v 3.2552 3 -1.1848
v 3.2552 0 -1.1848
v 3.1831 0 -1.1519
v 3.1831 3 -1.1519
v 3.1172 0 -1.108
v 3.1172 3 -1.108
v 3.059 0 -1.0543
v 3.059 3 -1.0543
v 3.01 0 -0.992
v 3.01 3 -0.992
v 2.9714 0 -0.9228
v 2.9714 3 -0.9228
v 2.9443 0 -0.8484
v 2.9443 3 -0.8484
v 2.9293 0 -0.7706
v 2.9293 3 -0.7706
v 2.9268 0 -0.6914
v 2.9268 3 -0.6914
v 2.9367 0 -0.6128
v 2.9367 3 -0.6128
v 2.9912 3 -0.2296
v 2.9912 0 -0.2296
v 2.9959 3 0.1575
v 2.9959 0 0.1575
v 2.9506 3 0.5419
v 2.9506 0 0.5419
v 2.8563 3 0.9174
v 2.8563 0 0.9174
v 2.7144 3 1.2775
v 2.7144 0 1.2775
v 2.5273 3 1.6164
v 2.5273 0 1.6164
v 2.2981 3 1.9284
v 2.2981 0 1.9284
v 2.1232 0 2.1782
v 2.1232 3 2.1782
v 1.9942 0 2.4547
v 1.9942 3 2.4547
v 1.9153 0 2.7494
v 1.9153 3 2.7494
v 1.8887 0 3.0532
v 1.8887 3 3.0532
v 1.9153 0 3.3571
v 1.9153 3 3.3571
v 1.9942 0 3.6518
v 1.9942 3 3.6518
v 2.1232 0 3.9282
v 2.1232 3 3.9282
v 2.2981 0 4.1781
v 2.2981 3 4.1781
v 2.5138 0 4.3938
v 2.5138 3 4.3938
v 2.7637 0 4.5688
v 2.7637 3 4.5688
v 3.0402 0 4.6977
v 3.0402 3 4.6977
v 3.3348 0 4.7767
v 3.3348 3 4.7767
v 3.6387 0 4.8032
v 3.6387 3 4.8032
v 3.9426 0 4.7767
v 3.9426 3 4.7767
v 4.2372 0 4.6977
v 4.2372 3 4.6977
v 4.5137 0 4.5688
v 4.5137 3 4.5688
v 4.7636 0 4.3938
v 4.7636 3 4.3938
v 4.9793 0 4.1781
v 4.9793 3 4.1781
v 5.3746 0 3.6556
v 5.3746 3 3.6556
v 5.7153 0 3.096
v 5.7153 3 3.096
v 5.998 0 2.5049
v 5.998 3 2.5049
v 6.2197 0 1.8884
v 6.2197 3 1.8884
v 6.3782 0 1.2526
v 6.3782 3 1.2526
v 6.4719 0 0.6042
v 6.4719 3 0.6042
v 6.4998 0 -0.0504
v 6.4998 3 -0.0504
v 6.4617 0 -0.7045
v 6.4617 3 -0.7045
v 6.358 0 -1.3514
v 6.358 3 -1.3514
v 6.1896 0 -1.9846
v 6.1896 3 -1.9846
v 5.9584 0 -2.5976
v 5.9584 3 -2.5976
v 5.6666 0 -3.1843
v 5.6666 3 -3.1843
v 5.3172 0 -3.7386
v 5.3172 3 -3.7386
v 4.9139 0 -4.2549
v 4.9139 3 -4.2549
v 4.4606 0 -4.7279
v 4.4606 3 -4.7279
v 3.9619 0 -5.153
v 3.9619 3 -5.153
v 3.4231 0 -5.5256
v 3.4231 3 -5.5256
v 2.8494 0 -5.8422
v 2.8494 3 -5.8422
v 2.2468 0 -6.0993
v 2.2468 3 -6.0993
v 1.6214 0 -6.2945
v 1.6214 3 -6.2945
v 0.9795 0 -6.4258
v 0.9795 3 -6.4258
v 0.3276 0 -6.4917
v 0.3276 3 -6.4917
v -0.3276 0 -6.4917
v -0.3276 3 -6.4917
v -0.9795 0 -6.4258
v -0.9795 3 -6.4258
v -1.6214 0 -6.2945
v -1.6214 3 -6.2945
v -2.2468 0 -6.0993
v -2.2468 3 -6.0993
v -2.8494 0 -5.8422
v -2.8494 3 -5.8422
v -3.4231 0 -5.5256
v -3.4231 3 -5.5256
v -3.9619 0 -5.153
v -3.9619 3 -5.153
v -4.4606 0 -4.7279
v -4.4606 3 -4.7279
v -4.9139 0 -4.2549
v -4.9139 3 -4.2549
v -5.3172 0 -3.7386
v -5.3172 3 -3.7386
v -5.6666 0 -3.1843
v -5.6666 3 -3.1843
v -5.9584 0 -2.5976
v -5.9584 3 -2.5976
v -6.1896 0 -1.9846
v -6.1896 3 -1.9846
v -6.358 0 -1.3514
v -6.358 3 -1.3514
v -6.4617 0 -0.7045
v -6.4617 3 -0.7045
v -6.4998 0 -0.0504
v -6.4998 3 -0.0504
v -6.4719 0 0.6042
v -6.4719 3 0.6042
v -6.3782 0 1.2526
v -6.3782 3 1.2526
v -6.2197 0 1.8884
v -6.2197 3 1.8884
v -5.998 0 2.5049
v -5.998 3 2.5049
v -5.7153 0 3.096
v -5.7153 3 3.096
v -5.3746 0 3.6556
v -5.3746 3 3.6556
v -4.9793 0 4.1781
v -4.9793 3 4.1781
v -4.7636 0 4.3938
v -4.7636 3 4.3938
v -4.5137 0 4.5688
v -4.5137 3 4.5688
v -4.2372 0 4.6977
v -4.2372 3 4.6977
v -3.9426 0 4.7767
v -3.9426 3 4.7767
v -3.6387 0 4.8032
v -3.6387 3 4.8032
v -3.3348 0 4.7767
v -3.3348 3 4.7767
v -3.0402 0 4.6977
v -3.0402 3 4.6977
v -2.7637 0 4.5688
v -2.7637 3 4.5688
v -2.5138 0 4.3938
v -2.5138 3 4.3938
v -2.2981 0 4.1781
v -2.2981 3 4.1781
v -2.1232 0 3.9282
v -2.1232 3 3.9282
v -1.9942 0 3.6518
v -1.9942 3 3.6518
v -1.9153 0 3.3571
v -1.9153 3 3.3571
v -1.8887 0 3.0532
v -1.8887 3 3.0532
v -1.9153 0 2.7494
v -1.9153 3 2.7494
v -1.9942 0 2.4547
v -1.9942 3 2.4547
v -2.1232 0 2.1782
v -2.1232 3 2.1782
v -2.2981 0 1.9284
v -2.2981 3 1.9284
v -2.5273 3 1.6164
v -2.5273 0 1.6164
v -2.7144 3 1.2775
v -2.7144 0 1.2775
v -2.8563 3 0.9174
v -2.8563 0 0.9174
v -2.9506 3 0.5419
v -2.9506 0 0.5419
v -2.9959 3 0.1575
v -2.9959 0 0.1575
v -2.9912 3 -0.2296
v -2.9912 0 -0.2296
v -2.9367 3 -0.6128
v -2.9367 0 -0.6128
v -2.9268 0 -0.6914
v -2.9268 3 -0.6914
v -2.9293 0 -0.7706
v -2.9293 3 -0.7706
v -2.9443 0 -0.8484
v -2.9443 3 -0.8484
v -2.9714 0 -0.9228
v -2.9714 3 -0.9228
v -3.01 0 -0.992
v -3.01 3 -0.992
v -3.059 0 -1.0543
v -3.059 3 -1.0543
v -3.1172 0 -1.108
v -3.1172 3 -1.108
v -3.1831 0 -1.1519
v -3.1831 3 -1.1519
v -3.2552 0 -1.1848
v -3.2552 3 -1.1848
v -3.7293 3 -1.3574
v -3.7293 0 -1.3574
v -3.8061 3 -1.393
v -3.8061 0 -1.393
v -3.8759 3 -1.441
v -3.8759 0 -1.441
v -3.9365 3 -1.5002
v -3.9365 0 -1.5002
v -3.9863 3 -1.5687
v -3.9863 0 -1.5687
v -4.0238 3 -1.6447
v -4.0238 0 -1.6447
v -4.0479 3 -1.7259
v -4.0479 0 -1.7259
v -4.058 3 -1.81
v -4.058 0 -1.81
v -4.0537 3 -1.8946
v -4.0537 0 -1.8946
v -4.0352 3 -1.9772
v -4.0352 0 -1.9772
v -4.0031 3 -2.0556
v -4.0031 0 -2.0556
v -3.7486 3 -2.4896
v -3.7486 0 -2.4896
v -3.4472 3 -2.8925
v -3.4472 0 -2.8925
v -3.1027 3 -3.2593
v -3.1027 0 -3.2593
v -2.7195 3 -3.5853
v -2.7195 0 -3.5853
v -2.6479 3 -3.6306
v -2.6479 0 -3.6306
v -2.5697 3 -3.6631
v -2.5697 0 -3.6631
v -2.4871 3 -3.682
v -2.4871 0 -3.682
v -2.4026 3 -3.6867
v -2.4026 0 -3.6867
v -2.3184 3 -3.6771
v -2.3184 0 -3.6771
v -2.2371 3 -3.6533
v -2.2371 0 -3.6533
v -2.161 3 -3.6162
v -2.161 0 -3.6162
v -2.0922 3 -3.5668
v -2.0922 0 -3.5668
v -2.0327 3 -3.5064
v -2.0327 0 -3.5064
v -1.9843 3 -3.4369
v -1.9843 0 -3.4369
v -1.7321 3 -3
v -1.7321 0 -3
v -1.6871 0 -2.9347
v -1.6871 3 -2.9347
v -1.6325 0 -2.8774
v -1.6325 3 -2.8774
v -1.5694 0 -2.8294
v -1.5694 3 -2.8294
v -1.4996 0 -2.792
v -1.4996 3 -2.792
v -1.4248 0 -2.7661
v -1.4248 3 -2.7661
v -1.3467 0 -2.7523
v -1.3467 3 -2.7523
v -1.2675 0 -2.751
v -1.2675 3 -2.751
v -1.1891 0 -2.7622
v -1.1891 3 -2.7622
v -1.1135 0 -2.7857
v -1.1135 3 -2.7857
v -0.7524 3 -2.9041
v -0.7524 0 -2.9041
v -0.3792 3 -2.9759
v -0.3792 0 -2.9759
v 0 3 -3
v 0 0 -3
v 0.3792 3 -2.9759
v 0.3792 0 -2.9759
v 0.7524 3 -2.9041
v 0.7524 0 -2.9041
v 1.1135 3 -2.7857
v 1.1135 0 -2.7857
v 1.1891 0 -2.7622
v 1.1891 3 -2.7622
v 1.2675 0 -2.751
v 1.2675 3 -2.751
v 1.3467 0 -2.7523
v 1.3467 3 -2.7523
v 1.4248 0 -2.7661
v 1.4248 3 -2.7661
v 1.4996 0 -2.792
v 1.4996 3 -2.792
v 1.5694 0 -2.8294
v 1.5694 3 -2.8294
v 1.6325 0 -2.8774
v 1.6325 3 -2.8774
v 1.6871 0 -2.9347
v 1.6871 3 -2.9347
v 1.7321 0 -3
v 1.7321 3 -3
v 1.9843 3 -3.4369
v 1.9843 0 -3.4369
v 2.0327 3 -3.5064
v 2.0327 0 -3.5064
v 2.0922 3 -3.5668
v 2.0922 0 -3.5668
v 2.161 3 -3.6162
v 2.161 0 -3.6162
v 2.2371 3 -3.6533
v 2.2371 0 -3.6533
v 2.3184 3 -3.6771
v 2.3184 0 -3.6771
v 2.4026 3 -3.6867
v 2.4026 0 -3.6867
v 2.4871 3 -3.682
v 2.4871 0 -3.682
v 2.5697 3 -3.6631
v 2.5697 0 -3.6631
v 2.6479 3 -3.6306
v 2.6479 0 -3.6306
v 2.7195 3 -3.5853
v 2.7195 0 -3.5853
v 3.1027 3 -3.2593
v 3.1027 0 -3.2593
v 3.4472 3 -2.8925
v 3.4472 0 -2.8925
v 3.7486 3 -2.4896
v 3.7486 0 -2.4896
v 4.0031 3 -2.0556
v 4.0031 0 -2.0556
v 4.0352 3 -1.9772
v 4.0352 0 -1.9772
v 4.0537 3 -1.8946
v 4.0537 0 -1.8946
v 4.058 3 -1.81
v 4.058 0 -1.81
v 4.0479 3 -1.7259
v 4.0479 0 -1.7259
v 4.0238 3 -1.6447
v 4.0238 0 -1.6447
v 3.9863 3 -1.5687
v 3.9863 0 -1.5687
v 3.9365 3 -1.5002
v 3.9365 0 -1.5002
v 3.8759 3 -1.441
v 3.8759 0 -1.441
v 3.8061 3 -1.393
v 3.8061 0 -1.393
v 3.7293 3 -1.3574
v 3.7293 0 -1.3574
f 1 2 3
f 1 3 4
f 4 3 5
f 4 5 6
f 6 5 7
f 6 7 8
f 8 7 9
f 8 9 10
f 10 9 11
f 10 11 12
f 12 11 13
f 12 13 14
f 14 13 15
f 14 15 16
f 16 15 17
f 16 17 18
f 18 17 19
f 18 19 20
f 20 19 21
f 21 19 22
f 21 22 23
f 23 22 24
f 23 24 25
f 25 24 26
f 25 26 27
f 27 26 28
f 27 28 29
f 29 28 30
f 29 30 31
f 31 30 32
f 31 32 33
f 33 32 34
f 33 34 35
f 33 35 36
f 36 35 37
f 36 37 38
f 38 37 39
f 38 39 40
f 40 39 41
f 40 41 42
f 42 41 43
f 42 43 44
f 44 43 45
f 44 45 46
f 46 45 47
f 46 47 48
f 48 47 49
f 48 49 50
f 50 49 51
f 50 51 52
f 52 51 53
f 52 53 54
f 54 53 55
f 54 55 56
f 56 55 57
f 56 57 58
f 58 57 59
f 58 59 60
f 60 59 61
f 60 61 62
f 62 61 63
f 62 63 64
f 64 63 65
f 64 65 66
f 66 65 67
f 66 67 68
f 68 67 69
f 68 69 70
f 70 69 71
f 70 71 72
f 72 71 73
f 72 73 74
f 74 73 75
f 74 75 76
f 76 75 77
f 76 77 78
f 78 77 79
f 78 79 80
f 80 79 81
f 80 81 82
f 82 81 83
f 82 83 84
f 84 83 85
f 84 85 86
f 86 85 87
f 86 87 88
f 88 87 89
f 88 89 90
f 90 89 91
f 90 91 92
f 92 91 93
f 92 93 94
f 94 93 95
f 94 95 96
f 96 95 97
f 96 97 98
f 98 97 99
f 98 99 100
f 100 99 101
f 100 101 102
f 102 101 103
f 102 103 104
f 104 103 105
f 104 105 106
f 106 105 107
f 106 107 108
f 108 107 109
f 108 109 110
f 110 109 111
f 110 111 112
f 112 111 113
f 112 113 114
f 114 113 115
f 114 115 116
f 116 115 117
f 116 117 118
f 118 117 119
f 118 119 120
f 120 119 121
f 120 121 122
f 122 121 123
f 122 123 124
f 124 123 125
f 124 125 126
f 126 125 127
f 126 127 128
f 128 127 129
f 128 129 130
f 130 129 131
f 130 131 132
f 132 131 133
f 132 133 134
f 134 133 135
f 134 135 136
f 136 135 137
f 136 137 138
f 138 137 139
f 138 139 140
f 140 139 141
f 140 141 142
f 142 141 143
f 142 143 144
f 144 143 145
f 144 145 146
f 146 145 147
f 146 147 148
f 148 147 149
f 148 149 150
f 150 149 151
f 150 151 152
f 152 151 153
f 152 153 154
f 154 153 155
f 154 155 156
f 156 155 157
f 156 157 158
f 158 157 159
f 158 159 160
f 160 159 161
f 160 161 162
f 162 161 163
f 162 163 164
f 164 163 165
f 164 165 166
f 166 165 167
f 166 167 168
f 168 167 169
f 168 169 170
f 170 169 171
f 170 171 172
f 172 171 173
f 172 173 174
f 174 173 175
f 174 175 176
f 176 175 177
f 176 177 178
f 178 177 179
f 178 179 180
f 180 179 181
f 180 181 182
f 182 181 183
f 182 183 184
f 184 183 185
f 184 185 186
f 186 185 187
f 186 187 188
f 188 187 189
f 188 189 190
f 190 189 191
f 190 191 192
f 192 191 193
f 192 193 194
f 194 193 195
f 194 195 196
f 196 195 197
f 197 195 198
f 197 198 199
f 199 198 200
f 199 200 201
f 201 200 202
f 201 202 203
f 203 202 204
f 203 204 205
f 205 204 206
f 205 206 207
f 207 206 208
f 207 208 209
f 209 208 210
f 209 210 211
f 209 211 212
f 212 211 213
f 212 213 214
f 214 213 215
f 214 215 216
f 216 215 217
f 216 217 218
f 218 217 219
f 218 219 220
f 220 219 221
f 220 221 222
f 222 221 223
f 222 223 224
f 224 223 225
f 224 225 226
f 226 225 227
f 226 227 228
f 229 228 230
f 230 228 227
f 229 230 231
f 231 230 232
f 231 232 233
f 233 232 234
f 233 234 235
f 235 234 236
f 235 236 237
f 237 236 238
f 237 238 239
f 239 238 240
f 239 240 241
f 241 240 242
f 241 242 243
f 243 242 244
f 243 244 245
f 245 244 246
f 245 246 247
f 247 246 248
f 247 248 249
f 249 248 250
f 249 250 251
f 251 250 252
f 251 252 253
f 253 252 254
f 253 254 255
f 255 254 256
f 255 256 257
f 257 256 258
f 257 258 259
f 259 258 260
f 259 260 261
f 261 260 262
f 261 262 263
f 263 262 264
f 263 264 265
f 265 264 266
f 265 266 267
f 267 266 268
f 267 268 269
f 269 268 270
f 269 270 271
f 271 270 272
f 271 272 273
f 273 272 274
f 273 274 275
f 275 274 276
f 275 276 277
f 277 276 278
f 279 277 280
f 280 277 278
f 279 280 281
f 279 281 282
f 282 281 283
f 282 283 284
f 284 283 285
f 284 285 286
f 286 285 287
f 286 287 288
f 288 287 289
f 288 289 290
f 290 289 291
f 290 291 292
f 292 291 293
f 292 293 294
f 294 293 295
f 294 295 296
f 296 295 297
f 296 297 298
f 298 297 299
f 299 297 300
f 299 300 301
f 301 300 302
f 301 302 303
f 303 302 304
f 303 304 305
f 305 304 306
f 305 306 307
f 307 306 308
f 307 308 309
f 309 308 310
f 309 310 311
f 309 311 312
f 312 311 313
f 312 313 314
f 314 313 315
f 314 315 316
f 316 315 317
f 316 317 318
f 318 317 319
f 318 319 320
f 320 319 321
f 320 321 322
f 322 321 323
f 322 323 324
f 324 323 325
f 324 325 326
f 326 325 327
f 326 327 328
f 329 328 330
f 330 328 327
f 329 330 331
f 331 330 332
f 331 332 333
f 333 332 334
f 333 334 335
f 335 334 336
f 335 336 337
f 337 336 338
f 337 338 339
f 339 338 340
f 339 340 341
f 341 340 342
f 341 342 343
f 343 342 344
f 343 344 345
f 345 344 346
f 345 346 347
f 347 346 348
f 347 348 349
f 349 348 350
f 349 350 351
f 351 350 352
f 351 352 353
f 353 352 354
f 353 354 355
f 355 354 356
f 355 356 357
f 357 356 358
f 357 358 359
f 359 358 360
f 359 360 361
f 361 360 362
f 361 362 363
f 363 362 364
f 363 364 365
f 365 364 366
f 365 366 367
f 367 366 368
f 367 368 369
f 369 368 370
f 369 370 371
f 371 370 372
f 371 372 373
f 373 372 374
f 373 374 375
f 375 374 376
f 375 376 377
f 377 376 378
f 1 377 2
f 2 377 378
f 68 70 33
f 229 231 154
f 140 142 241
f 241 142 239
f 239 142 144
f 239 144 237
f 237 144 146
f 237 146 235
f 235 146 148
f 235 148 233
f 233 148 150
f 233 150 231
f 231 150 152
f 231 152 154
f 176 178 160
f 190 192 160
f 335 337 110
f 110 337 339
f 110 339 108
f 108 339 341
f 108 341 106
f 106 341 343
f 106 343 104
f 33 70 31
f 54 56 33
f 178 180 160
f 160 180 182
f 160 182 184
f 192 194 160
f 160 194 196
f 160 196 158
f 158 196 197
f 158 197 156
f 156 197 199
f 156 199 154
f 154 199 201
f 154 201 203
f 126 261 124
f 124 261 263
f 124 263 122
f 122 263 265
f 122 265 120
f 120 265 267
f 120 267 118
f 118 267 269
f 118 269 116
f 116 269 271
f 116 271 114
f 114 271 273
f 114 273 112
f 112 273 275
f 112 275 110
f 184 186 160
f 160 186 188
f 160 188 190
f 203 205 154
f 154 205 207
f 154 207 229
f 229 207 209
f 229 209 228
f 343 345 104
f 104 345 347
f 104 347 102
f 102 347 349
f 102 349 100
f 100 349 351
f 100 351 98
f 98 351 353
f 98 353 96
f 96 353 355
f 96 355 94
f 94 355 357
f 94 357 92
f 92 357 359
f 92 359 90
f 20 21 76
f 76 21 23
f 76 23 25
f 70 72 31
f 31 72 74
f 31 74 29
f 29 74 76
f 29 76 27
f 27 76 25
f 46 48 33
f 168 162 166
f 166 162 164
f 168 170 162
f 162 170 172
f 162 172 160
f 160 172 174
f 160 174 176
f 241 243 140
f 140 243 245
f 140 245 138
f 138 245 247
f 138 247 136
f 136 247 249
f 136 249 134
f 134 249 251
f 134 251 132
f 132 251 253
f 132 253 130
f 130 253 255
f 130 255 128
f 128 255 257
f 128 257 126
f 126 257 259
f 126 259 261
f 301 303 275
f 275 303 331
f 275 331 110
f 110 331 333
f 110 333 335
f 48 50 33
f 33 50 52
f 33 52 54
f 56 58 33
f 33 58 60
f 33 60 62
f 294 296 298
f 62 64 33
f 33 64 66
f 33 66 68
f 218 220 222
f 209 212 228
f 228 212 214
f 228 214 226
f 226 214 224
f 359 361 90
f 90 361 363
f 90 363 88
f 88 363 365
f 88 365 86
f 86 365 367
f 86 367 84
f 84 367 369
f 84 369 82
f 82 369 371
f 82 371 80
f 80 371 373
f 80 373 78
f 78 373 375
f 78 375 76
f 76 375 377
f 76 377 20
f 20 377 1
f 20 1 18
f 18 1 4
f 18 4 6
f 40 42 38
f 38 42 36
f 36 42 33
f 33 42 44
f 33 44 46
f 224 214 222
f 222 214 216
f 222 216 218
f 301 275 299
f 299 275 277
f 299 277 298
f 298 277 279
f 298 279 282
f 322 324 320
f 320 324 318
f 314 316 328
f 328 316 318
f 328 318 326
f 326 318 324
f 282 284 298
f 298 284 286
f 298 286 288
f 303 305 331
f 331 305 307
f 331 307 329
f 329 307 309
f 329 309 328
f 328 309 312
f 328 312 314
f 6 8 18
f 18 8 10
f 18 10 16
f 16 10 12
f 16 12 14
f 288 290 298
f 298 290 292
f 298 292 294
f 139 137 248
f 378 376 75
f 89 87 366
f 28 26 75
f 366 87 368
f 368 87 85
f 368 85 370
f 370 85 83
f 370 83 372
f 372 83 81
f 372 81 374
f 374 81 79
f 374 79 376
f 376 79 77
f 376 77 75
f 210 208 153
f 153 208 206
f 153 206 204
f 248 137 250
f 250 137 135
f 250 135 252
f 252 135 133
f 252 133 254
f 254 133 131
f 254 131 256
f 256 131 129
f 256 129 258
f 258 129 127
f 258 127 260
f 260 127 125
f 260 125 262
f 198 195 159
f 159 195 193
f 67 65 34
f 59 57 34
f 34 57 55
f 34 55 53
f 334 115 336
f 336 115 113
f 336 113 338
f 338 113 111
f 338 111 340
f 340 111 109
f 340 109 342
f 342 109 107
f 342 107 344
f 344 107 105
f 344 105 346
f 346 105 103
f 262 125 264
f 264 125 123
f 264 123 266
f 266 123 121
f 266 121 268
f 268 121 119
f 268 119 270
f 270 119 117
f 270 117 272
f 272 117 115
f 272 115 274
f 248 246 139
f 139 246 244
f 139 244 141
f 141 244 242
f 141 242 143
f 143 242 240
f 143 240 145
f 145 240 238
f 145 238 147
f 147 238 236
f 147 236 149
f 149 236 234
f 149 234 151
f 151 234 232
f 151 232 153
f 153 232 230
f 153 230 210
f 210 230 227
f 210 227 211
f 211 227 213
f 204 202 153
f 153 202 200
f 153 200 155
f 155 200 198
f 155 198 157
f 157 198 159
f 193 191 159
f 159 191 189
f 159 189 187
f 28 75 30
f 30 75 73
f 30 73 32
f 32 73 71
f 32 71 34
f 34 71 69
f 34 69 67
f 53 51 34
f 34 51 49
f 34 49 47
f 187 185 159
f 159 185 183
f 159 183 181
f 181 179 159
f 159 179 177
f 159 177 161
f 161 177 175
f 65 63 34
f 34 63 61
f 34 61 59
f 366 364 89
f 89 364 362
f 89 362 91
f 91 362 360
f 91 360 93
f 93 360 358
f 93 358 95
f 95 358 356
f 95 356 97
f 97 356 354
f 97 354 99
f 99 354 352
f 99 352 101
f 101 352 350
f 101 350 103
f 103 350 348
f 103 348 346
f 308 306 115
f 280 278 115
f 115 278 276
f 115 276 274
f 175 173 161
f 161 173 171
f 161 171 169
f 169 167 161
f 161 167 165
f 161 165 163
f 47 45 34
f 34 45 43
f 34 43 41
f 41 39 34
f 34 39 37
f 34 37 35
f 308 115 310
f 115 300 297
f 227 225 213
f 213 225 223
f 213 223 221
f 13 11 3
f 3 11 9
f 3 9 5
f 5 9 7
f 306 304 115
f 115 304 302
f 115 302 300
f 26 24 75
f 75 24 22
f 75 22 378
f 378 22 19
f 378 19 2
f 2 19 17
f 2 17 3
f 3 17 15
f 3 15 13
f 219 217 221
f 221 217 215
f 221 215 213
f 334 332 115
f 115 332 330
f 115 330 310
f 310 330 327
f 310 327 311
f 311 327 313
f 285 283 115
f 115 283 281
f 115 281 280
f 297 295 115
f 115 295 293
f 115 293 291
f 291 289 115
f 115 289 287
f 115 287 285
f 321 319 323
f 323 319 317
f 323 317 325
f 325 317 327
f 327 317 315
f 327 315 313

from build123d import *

# Parameters (mm, degrees)
RESSALTO_EXTRUS_O1_DEPTH = 3


with BuildPart() as part:
    # Esboço1 → Ressalto-extrusão1 (new body)
    with BuildSketch(Plane(origin=(0, 0, 0), x_dir=(1, 0, 0), z_dir=(0, 1, 0))):
        with BuildLine():
            Line((-3.729289475, 1.357350364), (-3.255190725, 1.184792531))
            ThreePointArc((-3.255190725, 1.184792531), (-2.989342722, 0.958164276), (-2.93674354, 0.612811046))
            ThreePointArc((-2.93674354, 0.612811046), (-2.909531771, -0.731180466), (-2.298133329, -1.928362829))
            ThreePointArc((-2.298133329, -1.928362829), (-2.513832788, -4.393818921), (-4.97928888, -4.178119463))
            ThreePointArc((-4.97928888, -4.178119463), (0, 6.5), (4.97928888, -4.178119463))
            ThreePointArc((4.97928888, -4.178119463), (2.513832788, -4.393818921), (2.298133329, -1.928362829))
            ThreePointArc((2.298133329, -1.928362829), (2.909531771, -0.731180466), (2.93674354, 0.612811046))
            ThreePointArc((2.93674354, 0.612811046), (2.989342722, 0.958164276), (3.255190725, 1.184792531))
            Line((3.255190725, 1.184792531), (3.729289475, 1.357350364))
            ThreePointArc((3.729289475, 1.357350364), (4.023776667, 1.644680105), (4.003064329, 2.055596259))
            ThreePointArc((4.003064329, 2.055596259), (3.447199994, 2.892544244), (2.719491958, 3.585298243))
            ThreePointArc((2.719491958, 3.585298243), (2.318415204, 3.677050755), (1.984313483, 3.436931771))
            Line((1.984313483, 3.436931771), (1.732050808, 3))
            ThreePointArc((1.732050808, 3), (1.462701523, 2.777544409), (1.113461233, 2.785714286))
            ThreePointArc((1.113461233, 2.785714286), (0, 3), (-1.113461233, 2.785714286))
            ThreePointArc((-1.113461233, 2.785714286), (-1.462701523, 2.777544409), (-1.732050808, 3))
            Line((-1.732050808, 3), (-1.984313483, 3.436931771))
            ThreePointArc((-1.984313483, 3.436931771), (-2.318415204, 3.677050755), (-2.719491958, 3.585298243))
            ThreePointArc((-2.719491958, 3.585298243), (-3.447199994, 2.892544244), (-4.003064329, 2.055596259))
            ThreePointArc((-4.003064329, 2.055596259), (-4.023776667, 1.644680105), (-3.729289475, 1.357350364))
        make_face()
    extrude(amount=RESSALTO_EXTRUS_O1_DEPTH)


solid = part.part
